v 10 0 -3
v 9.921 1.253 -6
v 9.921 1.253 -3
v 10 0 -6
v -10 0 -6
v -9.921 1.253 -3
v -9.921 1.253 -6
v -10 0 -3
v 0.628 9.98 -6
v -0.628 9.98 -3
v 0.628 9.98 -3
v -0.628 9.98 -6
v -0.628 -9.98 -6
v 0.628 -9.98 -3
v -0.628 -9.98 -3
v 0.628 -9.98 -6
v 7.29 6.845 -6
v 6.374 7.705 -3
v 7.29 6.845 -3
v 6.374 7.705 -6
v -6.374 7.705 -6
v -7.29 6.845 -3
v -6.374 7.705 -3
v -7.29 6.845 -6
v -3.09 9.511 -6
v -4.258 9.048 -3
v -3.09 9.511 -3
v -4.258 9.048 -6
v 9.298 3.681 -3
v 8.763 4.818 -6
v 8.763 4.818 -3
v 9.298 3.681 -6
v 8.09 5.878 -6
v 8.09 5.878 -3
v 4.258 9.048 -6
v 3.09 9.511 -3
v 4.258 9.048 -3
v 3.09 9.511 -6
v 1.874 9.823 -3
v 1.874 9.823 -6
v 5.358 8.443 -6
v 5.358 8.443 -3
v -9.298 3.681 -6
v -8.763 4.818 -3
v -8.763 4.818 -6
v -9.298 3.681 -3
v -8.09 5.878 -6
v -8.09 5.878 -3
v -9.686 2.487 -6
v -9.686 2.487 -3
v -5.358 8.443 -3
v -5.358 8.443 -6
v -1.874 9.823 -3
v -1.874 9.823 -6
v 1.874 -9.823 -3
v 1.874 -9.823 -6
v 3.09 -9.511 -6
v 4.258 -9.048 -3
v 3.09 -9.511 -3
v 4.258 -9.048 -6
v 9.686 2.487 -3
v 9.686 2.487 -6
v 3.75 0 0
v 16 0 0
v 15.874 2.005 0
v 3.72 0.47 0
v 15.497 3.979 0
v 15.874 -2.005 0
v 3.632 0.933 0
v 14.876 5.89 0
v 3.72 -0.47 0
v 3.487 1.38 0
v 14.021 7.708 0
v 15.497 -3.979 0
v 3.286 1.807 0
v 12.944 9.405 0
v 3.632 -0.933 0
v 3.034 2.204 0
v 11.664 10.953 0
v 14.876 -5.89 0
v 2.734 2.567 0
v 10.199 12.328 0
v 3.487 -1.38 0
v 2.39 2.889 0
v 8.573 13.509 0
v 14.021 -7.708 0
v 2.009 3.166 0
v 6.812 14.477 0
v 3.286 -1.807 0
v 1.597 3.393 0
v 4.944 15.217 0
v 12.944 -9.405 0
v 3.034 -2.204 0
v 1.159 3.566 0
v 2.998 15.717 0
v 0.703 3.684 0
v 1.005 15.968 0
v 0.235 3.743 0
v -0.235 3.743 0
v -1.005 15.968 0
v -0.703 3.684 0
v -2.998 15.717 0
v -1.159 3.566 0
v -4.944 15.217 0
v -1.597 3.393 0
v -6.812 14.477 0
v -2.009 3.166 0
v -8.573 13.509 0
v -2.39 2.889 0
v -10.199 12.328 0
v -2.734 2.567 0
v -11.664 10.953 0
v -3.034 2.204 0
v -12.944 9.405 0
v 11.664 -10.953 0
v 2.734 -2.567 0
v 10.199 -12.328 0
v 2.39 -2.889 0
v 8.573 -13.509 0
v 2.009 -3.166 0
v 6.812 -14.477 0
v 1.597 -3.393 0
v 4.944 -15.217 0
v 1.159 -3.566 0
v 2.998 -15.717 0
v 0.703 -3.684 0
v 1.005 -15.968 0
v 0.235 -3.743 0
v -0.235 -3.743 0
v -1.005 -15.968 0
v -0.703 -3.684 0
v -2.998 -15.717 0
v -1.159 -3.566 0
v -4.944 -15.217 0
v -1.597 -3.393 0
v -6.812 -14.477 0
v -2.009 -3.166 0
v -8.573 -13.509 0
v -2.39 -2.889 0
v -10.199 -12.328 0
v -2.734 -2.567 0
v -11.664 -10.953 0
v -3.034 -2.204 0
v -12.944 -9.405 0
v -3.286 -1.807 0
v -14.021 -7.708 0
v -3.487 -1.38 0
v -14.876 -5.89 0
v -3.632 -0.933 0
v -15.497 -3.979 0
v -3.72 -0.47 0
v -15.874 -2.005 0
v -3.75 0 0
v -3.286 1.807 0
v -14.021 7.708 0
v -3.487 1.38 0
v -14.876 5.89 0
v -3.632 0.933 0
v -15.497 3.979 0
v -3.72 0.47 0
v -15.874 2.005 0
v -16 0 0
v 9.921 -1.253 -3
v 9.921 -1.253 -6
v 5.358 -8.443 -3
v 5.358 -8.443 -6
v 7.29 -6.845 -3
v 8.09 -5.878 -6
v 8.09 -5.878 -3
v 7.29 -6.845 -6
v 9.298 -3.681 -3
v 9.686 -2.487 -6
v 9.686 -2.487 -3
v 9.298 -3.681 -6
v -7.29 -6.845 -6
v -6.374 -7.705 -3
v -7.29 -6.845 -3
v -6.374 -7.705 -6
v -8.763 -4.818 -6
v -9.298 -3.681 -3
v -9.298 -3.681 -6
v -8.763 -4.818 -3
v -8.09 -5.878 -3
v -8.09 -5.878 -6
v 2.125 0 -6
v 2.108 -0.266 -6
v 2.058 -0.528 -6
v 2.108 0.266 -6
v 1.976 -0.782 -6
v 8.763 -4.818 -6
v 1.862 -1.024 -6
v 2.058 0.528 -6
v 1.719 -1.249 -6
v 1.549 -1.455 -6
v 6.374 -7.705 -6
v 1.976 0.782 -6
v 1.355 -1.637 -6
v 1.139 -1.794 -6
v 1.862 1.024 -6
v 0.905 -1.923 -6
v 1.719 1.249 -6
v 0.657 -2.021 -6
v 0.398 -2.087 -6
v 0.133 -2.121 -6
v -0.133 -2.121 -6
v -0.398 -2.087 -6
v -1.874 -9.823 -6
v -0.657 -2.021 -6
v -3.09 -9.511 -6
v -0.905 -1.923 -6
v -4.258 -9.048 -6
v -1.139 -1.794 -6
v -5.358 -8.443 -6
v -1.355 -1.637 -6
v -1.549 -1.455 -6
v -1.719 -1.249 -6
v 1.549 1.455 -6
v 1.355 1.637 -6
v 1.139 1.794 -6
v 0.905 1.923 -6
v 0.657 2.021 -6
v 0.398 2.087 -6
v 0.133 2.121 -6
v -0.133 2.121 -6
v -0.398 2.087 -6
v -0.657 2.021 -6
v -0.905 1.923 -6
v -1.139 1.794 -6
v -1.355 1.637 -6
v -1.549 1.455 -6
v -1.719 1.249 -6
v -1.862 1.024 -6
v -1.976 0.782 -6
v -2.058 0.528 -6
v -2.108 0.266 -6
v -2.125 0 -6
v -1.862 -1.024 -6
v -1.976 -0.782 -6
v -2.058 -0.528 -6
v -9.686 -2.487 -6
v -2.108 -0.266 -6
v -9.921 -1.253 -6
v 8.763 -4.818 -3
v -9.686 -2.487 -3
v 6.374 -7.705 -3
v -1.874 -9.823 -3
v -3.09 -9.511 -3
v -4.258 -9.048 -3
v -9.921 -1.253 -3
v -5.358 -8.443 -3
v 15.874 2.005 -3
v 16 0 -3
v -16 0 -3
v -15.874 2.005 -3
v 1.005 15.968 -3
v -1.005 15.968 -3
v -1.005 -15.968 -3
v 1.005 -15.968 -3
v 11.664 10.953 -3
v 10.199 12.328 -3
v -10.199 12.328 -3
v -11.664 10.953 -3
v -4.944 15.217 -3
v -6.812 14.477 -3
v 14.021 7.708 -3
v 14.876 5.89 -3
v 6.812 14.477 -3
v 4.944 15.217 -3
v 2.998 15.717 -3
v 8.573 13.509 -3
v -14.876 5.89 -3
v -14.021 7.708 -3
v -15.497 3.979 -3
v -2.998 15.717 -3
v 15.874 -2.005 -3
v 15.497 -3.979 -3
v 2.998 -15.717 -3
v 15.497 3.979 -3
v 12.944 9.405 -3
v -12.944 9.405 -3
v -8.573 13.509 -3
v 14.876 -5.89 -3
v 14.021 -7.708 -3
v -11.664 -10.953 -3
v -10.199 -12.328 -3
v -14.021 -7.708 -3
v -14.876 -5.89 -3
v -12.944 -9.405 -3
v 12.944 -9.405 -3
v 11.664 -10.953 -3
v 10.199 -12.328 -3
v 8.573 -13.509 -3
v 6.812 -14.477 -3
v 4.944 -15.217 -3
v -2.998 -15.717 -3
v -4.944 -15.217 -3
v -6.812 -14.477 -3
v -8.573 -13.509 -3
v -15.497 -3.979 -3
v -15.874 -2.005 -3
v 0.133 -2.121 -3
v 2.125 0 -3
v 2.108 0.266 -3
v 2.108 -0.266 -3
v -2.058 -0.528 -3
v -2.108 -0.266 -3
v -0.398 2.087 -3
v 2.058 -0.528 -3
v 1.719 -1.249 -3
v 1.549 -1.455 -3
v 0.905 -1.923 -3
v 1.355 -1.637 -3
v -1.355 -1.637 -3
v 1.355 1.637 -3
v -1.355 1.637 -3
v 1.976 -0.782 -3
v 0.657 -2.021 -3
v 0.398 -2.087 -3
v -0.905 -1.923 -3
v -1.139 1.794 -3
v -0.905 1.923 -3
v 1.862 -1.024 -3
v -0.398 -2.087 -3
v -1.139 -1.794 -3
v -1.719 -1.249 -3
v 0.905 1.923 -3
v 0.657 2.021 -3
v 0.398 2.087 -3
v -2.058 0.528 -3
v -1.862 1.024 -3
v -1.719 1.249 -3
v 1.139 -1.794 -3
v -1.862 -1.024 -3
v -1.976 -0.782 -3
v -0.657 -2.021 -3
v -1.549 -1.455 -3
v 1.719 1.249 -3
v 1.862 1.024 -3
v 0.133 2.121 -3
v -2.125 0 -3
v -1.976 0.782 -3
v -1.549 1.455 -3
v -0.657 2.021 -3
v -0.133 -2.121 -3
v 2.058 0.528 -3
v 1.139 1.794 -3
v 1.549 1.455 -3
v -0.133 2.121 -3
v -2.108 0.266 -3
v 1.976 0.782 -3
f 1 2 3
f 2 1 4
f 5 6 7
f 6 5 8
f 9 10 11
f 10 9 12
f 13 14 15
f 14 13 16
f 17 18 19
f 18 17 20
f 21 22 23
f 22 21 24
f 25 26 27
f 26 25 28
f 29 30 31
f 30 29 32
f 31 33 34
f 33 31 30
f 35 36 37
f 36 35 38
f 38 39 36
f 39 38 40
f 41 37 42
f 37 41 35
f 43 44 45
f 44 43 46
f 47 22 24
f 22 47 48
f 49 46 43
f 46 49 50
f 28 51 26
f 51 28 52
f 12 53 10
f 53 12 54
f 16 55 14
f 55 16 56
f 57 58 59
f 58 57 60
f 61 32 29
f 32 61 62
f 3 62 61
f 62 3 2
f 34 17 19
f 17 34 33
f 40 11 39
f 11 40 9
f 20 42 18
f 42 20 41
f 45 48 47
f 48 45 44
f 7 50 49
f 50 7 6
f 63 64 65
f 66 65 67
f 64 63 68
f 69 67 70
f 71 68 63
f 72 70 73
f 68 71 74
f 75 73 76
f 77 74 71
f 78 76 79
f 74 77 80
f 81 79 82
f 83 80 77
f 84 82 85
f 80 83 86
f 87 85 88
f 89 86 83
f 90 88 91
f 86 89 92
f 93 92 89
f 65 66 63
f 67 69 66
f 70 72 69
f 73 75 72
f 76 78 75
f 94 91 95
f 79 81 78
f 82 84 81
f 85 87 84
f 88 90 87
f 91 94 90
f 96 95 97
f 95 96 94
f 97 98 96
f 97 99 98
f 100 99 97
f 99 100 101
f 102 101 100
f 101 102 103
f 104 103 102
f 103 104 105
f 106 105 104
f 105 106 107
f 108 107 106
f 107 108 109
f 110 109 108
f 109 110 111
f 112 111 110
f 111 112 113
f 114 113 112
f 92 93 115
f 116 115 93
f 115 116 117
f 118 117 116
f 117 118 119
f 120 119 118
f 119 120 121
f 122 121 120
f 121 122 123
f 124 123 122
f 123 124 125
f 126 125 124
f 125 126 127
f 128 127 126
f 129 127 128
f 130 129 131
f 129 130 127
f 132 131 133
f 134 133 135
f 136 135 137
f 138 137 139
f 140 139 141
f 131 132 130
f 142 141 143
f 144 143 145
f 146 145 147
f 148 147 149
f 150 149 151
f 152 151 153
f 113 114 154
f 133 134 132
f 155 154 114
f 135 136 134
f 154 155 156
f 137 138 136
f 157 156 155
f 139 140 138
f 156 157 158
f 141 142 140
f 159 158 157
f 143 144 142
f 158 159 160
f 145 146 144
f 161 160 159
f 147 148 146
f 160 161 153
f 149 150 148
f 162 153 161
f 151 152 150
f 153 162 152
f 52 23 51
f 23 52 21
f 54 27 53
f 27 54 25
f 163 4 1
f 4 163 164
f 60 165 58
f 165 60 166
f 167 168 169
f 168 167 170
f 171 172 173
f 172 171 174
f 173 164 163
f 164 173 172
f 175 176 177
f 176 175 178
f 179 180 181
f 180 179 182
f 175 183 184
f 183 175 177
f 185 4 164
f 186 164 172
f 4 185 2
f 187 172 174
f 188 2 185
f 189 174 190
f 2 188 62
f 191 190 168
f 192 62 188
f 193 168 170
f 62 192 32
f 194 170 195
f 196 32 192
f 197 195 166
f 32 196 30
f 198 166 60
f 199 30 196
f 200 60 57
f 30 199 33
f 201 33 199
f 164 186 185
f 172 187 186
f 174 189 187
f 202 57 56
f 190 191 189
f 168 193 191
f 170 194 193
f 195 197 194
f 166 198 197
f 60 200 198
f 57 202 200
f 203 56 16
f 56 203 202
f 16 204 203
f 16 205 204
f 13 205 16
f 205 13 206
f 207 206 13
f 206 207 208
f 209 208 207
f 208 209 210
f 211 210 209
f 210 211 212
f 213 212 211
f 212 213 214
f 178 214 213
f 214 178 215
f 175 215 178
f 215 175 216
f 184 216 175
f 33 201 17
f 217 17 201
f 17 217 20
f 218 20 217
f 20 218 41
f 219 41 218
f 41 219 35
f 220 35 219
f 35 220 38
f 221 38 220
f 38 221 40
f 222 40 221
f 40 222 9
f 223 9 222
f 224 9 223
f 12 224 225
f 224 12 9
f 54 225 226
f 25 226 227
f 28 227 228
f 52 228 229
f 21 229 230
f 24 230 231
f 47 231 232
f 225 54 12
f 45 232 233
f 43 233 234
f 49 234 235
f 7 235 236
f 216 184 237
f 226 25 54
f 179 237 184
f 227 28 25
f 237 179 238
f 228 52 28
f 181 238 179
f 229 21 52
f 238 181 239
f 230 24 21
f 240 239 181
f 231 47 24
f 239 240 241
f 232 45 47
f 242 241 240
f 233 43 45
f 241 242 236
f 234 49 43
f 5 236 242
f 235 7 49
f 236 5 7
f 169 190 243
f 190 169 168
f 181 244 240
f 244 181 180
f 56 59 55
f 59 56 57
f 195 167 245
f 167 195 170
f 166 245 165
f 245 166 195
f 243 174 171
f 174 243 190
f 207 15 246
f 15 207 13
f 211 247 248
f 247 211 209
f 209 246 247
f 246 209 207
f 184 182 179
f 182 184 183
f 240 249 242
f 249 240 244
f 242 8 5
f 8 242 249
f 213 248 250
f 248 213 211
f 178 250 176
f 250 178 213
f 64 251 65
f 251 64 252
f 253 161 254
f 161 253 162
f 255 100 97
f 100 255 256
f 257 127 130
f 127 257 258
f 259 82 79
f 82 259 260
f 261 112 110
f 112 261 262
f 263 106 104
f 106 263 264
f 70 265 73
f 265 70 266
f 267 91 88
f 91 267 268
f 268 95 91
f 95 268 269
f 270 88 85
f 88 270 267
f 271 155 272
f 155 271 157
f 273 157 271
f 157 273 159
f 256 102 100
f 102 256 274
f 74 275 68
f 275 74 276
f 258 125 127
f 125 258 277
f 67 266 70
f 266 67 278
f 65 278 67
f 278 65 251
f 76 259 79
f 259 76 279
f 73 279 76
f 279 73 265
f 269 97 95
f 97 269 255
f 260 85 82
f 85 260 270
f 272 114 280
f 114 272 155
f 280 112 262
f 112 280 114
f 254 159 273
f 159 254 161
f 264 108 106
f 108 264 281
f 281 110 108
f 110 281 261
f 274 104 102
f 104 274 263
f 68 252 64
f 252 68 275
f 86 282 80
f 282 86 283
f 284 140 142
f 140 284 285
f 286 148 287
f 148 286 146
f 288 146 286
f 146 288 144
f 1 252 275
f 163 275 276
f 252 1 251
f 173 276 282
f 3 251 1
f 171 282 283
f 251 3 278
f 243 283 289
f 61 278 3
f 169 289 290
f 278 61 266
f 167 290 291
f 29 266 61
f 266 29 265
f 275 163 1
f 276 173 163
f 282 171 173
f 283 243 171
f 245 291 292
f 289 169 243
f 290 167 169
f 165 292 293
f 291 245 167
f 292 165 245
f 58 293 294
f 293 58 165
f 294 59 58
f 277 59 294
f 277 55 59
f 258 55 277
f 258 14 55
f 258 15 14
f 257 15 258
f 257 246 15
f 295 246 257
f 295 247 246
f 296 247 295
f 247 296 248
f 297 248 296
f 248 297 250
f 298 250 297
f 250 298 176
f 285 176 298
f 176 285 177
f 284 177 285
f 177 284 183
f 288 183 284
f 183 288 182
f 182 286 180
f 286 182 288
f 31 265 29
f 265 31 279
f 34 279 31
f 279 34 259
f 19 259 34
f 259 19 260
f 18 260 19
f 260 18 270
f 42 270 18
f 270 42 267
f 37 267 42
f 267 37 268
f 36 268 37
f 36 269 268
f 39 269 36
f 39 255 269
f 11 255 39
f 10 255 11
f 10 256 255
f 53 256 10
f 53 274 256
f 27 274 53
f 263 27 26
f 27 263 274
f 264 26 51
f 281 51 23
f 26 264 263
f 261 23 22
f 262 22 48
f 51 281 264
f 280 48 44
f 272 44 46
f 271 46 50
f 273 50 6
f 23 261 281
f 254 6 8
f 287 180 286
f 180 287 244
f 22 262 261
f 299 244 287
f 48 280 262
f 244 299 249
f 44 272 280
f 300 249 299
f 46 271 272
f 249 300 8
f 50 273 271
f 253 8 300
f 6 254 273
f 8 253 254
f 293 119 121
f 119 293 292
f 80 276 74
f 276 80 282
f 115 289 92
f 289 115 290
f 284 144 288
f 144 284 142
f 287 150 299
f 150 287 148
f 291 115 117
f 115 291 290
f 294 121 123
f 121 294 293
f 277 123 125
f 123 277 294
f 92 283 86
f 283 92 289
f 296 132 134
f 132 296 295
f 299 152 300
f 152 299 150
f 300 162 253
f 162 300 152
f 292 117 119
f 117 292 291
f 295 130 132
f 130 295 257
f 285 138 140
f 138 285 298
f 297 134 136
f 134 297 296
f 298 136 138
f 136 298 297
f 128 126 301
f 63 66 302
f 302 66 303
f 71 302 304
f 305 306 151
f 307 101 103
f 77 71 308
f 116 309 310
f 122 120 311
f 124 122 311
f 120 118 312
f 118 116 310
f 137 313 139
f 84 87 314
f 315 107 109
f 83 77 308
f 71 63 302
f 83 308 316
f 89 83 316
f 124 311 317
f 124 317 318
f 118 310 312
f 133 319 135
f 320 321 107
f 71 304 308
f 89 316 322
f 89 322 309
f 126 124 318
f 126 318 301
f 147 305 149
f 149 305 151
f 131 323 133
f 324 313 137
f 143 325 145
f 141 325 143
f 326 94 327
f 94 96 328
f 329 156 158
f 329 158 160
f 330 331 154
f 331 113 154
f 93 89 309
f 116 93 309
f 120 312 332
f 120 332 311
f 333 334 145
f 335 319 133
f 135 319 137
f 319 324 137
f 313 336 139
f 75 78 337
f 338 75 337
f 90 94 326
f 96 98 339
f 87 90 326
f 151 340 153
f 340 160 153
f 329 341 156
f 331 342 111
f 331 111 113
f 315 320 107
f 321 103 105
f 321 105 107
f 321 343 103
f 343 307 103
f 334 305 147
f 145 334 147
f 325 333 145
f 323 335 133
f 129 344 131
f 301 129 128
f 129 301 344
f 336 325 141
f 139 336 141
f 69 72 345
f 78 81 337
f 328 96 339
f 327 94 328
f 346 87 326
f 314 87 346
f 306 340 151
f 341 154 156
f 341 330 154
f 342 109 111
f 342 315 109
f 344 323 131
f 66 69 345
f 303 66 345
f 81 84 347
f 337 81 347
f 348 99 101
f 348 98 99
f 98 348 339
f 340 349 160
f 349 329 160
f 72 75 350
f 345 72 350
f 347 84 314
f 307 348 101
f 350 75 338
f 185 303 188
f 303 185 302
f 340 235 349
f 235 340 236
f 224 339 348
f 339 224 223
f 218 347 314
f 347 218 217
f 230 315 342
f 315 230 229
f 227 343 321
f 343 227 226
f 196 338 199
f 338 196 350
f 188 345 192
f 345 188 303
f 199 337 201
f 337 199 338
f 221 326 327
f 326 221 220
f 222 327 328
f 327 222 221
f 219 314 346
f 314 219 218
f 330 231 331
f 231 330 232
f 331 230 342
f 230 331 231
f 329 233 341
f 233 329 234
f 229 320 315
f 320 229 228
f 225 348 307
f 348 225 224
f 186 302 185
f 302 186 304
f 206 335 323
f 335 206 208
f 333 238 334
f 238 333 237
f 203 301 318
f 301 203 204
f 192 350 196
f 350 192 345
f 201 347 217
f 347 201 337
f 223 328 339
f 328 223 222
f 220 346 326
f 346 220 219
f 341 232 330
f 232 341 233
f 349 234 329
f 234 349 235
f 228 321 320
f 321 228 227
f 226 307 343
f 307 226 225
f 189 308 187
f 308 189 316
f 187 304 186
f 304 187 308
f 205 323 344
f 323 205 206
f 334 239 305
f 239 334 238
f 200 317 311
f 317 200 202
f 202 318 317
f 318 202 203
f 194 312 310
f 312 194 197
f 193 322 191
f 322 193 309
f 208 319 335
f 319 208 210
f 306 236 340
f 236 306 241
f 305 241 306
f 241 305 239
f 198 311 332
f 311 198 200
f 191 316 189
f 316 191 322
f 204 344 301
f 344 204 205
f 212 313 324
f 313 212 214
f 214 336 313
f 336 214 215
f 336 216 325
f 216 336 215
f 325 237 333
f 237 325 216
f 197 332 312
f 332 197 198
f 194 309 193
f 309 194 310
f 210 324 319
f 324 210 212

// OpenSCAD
$fn = 50;


difference() {
	union() {
		translate(v = [0, 0, -6.0000000000]) {
			cylinder(h = 6, r = 10.0000000000);
		}
		translate(v = [0, 0, -3.0000000000]) {
			cylinder(h = 3, r = 16.0000000000);
		}
	}
	union() {
		translate(v = [0, 0, 0]) {
			rotate(a = [0, 0, 0]) {
				difference() {
					union() {
						#translate(v = [0, 0, -6.0000000000]) {
							cylinder(h = 6, r = 2.0000000000);
						}
						#translate(v = [0, 0, -3]) {
							cylinder(h = 3, r1 = 2.1250000000, r2 = 3.7500000000);
						}
						#translate(v = [0, 0, -6.0000000000]) {
							cylinder(h = 6, r = 2.1250000000);
						}
						#translate(v = [0, 0, -6.0000000000]) {
							cylinder(h = 6, r = 2.0000000000);
						}
					}
					union();
				}
			}
		}
	}
}
